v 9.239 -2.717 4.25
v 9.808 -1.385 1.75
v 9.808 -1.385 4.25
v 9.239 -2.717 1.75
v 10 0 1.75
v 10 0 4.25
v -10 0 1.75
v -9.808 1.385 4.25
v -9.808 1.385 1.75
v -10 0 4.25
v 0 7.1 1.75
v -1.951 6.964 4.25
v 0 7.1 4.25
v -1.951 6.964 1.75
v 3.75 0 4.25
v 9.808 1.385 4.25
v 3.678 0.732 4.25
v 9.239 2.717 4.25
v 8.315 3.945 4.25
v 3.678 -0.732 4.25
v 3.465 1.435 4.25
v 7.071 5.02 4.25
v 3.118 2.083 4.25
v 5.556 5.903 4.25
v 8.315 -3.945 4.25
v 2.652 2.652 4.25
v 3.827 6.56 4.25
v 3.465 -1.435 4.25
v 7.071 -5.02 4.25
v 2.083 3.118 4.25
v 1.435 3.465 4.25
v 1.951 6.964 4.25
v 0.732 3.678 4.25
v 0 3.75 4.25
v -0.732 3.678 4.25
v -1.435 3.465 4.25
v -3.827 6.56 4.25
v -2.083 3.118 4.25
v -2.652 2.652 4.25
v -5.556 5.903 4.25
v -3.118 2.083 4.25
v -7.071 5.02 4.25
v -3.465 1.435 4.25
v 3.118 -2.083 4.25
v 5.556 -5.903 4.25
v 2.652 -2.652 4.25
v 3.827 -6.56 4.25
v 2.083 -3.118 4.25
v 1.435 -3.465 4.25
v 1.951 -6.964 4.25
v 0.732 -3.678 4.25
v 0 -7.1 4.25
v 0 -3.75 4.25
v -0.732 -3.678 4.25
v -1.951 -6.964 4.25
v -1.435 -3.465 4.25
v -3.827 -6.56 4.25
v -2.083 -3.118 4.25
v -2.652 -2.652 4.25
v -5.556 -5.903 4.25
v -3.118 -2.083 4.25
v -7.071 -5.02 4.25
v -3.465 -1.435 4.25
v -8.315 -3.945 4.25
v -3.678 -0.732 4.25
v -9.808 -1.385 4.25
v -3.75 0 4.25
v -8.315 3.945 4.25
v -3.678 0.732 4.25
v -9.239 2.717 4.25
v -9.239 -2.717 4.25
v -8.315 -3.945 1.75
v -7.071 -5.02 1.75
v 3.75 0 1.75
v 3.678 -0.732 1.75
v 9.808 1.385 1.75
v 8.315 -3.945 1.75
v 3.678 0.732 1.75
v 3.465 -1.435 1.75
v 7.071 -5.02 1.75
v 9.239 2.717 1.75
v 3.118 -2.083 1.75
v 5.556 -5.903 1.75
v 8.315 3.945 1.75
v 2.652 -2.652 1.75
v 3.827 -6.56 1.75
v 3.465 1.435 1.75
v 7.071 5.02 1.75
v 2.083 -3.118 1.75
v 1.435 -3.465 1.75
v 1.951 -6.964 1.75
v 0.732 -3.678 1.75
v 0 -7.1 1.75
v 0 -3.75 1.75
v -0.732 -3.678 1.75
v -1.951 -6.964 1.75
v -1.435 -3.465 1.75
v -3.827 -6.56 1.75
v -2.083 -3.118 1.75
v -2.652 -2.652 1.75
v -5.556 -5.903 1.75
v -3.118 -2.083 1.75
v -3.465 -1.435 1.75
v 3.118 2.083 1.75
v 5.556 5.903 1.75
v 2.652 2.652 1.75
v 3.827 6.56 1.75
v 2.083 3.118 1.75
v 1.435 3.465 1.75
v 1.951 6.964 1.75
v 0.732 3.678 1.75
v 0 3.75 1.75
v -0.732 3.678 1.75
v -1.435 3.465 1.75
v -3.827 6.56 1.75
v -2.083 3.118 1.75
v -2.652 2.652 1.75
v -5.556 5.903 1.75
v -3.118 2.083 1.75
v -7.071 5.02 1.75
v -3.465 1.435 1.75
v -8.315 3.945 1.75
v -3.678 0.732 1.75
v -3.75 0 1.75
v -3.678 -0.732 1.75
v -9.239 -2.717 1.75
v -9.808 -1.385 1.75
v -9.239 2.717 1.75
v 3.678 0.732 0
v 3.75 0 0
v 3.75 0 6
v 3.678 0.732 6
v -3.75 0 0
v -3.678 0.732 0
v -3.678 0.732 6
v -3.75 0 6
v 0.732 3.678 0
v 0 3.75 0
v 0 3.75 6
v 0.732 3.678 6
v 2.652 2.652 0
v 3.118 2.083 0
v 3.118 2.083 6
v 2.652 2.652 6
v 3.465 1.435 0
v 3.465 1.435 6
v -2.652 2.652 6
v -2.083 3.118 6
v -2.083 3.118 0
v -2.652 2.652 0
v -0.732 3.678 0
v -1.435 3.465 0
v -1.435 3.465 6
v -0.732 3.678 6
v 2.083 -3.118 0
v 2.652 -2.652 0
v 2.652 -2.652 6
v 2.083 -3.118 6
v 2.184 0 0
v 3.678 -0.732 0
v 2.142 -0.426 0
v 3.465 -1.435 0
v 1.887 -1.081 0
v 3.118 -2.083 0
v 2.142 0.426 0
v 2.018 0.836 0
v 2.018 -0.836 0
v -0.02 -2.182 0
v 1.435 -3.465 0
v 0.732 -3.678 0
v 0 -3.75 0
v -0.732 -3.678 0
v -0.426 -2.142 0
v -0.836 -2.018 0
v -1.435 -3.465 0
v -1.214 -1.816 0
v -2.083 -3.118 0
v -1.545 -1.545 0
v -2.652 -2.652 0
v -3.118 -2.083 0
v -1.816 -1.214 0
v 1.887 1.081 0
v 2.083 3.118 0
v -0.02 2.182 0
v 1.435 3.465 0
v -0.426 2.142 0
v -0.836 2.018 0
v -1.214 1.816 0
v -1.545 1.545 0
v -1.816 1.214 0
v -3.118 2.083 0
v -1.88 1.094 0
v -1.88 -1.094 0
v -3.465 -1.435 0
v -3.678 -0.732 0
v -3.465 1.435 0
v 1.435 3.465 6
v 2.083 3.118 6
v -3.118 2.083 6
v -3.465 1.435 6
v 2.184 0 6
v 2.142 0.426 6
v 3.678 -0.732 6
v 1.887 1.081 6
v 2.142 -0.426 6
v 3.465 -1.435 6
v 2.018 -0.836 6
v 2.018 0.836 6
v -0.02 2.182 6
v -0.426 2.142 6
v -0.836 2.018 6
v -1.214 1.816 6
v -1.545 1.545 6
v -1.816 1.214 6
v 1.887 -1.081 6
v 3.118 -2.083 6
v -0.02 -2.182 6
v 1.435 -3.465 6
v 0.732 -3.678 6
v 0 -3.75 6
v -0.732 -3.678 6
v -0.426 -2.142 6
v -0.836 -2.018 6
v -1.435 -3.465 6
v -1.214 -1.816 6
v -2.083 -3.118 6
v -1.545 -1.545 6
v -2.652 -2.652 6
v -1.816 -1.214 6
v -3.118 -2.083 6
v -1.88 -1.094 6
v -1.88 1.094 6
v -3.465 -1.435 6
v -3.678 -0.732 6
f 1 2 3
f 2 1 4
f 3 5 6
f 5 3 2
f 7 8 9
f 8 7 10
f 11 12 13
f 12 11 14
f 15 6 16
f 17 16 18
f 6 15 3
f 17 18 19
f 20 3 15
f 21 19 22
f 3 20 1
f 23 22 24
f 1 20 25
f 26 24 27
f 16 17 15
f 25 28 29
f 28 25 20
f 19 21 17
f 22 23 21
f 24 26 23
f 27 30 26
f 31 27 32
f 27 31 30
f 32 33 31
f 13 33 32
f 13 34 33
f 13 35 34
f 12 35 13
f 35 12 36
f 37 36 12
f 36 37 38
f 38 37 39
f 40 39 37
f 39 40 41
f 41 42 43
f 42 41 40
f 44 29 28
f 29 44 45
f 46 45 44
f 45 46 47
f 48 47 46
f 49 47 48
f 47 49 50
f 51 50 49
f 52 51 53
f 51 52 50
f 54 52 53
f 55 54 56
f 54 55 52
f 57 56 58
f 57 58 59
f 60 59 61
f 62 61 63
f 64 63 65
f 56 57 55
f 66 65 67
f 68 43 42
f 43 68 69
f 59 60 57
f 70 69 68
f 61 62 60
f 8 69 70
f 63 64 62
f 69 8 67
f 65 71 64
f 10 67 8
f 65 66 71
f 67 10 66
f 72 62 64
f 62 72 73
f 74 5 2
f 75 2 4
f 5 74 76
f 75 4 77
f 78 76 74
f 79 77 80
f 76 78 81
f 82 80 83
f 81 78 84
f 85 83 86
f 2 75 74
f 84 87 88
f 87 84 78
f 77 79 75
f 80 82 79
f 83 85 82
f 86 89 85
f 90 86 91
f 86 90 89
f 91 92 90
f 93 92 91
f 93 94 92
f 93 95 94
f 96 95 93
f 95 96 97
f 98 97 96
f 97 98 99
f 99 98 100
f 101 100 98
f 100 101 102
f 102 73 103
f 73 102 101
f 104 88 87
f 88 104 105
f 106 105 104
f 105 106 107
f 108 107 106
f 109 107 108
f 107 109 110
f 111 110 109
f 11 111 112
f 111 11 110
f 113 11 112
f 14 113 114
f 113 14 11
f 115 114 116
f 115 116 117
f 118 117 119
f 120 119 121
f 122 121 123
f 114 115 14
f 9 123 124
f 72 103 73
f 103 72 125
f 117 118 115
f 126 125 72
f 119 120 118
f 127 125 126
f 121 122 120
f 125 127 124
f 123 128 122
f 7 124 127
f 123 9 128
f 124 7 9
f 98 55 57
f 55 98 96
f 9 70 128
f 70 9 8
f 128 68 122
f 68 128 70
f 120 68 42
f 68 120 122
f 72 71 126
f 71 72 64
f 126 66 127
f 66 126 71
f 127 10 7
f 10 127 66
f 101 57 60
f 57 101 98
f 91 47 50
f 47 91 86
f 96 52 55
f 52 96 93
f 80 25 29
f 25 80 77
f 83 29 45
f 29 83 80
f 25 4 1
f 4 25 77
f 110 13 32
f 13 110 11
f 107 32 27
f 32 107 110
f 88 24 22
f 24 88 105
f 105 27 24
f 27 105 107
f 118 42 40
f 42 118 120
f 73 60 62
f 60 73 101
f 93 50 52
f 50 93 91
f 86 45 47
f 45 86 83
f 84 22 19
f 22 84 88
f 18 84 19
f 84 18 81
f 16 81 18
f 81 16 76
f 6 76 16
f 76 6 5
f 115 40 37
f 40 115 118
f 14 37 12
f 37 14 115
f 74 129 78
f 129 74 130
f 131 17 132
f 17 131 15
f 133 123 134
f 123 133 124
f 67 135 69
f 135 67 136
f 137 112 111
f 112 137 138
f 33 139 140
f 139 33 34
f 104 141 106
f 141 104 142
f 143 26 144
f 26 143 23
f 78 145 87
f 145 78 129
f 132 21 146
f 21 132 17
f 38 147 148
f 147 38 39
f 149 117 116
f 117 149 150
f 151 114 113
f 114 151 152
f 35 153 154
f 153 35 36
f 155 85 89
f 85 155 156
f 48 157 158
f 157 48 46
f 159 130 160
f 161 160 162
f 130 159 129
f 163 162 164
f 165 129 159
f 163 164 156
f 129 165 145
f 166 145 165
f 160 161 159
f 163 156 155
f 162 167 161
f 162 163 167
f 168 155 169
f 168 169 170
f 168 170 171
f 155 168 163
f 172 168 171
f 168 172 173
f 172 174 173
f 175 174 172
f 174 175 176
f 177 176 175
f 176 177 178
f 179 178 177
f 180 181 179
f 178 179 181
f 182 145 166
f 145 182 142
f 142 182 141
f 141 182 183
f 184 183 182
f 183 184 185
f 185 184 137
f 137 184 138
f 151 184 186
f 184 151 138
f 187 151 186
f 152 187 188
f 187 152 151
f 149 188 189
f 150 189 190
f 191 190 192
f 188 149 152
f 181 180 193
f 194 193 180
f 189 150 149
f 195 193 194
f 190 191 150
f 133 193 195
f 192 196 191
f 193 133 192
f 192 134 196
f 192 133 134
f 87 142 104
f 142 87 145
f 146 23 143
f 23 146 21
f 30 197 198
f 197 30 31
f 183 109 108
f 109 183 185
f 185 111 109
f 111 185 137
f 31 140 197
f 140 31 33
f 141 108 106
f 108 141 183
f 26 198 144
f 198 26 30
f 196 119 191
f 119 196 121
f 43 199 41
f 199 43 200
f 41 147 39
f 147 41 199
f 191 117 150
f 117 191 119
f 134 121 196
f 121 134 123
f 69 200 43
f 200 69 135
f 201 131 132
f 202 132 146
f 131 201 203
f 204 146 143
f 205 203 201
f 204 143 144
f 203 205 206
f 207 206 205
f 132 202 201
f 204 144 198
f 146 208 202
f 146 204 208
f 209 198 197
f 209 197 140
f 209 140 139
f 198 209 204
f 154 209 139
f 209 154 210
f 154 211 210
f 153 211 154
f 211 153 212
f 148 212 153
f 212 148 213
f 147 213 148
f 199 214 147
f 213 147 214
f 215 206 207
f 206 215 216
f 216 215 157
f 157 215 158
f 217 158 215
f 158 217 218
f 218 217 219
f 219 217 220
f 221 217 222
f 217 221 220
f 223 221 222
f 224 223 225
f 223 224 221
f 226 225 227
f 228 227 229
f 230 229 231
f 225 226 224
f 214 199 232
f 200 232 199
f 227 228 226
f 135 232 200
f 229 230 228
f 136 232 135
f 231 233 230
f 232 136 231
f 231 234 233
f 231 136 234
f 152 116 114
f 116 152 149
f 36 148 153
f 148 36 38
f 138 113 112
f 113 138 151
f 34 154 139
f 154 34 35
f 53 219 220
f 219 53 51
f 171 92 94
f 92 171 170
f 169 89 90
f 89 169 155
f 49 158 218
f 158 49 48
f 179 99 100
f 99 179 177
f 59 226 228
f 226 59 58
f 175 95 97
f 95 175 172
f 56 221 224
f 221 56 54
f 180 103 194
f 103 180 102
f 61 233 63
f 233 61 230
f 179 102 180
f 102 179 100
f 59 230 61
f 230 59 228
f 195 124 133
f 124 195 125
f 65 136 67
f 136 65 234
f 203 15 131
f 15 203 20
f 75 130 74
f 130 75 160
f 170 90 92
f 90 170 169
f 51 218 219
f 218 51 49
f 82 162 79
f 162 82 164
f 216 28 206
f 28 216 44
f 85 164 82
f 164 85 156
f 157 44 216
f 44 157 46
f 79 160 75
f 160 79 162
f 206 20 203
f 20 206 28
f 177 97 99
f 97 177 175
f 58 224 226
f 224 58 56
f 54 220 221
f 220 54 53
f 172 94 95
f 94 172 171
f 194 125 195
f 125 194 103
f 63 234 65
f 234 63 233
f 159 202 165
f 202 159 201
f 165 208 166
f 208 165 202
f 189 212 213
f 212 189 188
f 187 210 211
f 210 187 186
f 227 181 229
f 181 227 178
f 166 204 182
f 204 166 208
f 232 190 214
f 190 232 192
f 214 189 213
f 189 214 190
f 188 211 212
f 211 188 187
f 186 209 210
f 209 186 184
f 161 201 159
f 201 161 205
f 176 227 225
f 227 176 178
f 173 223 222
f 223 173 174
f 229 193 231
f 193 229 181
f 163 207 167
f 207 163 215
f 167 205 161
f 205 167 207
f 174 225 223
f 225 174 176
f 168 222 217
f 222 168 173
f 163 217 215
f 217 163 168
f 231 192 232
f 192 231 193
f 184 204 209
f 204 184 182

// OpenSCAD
$fn=32;

//
// Meccano constants
//
inch=25.4;
axle_d=0.166*inch;           // size for standard round Meccano axle
triaxle_round_d=0.172*inch;  // sized to fit a standard Meccano triaxle rod
triaxle_flats_d=3.76;        // ... YMMV

//
// cam: produce a cam as used in the 2015 F1 race car set
//
// centered: true to put the cam centered on the boss height,
// false to put the cam on the bottom (default: true)
//
module cam(centered=true) {

  // cam constants
  cam_major_d=20.0;
  cam_minor_d=14.2;
  cam_thick=2.5;
  boss_d=7.5;
  boss_h=6.0;

  difference() {
    union() {
      translate([0,0,centered?(boss_h-cam_thick)/2:0])
        linear_extrude(height=cam_thick)
          resize([cam_major_d,cam_minor_d])
            circle(d=cam_minor_d);
      cylinder(r=boss_d/2,h=boss_h);
    }
    intersection() {
      cylinder(r=triaxle_round_d/2,h=boss_h);
      // a circle with 3 sides is... you guessed it, a triangle!
      linear_extrude(height=boss_h) 
        circle(triaxle_flats_d,$fn=3);
    }
  }
}

cam();
